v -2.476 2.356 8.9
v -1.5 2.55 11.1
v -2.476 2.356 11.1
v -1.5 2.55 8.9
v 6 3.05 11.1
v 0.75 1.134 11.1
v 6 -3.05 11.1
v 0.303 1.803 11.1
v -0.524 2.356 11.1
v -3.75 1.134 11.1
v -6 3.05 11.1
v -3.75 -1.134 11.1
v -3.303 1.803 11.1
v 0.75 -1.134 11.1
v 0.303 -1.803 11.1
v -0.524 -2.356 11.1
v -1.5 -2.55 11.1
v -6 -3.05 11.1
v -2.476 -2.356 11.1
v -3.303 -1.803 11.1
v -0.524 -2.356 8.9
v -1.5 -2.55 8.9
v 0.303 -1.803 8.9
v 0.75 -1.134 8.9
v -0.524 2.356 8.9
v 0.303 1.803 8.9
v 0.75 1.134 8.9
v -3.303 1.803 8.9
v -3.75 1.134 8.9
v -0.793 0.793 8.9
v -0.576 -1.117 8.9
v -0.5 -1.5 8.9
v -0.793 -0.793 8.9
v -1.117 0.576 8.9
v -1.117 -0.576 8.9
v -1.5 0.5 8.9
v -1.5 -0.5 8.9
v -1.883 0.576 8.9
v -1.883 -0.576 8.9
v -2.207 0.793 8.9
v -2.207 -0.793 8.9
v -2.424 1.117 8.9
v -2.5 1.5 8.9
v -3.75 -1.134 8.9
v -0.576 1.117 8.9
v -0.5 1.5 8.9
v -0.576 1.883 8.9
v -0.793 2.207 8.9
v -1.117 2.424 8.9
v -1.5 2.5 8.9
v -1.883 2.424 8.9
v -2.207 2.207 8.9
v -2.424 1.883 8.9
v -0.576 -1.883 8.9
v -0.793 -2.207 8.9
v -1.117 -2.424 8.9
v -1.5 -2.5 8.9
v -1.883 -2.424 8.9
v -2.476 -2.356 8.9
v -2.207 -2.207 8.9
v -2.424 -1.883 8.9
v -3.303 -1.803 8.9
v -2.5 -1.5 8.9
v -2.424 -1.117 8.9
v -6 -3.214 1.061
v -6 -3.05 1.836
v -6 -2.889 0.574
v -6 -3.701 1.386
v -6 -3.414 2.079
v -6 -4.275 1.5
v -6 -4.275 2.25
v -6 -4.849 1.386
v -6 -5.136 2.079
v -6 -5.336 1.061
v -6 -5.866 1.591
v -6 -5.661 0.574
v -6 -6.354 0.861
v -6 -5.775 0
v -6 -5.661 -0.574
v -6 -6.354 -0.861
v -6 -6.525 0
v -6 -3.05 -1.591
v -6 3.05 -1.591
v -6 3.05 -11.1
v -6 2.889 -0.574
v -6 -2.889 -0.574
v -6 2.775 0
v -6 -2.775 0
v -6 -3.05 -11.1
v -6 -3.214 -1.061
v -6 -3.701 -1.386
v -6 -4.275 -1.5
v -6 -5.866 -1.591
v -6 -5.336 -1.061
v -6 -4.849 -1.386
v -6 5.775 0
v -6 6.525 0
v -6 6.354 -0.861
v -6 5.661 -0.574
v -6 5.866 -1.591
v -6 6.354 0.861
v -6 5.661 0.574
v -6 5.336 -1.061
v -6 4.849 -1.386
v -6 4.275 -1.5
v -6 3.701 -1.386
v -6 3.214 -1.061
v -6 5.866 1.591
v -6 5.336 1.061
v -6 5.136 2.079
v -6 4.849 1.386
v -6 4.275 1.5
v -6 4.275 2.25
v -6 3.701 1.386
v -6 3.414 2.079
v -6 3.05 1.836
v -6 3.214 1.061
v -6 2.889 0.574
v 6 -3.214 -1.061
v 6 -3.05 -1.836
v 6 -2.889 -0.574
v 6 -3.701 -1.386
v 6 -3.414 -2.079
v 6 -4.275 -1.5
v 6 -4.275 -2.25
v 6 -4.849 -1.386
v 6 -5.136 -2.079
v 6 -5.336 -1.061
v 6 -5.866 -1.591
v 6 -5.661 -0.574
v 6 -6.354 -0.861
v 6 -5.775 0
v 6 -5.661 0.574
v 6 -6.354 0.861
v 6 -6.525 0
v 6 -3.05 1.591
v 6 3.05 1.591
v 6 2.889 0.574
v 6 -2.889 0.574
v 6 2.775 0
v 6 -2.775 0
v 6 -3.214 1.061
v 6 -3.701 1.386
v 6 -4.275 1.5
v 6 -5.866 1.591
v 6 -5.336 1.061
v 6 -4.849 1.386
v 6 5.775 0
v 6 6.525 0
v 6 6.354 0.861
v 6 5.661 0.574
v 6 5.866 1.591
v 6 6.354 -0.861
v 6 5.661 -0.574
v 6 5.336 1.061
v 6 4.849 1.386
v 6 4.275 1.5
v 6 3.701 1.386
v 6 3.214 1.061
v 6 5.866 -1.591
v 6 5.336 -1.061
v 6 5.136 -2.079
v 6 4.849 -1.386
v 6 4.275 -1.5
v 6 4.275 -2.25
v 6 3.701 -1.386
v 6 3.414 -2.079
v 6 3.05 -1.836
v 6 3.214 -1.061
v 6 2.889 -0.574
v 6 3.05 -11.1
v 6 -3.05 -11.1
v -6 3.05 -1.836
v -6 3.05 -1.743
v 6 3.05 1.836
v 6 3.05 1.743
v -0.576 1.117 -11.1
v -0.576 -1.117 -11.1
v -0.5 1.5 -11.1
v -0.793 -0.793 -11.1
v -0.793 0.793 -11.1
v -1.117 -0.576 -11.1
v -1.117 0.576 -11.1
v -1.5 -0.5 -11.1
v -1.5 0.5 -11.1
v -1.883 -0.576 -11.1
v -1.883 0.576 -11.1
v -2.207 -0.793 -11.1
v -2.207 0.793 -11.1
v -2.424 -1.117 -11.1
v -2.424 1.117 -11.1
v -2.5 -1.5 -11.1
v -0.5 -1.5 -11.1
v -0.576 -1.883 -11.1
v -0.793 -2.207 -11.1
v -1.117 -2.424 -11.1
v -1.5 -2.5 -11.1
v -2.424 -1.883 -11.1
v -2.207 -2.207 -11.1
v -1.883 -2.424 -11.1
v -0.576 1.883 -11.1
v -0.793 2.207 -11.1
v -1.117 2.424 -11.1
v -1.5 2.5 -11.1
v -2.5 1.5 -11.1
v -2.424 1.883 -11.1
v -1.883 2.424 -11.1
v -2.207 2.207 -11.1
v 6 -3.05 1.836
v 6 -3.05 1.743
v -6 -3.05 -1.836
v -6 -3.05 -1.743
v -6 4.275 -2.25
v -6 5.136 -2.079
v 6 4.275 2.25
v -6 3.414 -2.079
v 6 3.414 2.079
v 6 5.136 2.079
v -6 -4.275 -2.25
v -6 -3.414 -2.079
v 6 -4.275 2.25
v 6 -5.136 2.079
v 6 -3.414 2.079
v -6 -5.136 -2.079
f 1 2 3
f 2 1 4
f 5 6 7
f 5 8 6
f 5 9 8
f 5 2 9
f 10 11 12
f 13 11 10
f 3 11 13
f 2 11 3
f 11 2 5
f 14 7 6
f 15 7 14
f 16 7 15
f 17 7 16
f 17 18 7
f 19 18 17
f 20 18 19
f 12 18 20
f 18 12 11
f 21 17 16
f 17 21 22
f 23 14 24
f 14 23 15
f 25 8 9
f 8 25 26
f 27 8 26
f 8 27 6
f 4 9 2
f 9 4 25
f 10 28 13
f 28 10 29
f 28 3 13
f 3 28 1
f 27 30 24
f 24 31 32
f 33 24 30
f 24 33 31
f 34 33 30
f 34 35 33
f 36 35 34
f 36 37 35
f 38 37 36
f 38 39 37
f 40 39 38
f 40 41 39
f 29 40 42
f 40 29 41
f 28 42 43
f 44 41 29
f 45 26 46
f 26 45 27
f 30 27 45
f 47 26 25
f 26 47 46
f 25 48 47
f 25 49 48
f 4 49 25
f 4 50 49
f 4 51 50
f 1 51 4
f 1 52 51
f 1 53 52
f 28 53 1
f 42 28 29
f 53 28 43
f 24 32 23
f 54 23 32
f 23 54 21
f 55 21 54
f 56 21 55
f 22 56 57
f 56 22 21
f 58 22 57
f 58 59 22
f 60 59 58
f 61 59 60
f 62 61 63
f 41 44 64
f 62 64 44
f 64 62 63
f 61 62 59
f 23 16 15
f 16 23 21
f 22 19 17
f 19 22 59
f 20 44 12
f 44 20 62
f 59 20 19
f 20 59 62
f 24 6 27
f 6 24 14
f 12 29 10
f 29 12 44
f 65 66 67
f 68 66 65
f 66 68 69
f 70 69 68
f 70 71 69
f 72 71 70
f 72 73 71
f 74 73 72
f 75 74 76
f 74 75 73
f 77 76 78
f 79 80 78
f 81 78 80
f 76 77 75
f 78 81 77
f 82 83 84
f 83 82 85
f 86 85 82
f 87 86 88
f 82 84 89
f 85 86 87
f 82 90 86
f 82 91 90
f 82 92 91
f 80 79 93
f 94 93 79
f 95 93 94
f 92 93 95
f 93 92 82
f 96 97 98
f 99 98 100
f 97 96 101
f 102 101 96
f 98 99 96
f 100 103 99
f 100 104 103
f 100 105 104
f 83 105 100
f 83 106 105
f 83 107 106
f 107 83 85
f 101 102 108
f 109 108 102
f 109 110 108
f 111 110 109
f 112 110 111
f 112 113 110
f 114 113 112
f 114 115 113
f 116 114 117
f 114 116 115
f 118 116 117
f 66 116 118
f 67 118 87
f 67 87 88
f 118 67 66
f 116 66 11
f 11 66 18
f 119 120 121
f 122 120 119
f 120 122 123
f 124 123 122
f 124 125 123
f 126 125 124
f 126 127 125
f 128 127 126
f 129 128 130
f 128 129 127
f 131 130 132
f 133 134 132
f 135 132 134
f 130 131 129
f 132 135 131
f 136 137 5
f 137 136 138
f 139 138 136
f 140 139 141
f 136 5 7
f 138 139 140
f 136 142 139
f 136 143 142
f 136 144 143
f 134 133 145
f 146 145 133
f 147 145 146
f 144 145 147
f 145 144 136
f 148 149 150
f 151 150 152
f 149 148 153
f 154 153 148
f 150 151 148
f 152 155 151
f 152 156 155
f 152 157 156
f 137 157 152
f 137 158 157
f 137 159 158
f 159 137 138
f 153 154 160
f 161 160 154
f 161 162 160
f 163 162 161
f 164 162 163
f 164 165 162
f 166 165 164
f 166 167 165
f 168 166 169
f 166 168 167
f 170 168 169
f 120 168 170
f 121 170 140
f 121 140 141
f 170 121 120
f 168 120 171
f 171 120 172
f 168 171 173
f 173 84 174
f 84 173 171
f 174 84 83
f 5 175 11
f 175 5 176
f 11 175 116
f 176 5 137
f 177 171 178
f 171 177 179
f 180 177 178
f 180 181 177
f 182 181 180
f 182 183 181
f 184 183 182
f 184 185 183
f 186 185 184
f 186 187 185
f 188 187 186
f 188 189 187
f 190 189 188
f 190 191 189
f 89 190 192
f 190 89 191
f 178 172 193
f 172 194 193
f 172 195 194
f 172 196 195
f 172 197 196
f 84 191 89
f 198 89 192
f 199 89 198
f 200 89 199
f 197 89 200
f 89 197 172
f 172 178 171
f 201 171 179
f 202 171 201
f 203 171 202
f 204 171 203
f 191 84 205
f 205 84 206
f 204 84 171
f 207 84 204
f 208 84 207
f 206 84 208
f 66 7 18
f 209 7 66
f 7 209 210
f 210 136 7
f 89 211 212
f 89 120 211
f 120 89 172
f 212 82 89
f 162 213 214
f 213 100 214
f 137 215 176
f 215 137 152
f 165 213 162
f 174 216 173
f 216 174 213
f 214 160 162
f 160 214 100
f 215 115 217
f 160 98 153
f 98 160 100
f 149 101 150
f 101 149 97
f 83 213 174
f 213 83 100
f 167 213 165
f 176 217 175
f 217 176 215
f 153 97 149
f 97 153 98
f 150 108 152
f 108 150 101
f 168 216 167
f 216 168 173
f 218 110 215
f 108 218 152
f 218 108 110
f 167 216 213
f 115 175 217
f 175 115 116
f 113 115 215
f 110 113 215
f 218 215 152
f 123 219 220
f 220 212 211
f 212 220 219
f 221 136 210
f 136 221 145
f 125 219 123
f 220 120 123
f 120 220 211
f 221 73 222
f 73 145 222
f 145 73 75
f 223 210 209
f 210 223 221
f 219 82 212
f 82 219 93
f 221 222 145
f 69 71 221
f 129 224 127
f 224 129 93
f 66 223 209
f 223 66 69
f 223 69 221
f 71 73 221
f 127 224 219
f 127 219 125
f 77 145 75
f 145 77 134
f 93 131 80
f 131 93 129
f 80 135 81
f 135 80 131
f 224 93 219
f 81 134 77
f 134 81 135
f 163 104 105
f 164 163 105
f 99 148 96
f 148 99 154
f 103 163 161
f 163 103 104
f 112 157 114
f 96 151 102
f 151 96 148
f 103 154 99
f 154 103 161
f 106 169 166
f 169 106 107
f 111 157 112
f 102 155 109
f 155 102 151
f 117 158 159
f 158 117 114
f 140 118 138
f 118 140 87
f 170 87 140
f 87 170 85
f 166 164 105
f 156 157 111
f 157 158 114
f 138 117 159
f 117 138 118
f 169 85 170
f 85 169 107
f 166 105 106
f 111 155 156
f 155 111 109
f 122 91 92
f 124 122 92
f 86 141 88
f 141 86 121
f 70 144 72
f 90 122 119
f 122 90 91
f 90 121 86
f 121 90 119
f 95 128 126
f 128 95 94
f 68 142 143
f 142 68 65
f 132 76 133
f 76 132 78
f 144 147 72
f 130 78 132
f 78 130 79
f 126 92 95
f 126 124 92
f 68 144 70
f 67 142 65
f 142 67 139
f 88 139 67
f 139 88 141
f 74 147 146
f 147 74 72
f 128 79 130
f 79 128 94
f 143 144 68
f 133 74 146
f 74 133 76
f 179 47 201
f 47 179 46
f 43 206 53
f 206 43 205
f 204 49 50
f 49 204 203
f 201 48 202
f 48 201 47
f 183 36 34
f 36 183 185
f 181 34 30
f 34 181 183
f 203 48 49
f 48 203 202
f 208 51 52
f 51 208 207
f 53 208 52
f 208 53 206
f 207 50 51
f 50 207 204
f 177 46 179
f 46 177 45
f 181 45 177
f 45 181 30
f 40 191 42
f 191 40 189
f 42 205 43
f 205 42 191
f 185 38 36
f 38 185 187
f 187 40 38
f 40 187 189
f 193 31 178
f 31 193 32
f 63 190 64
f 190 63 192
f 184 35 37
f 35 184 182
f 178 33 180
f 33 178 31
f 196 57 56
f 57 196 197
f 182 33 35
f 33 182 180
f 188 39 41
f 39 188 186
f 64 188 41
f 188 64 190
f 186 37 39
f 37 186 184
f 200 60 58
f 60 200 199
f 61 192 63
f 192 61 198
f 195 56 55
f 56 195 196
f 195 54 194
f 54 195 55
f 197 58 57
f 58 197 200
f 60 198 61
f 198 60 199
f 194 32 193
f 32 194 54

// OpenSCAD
difference(){
  union(){
    difference(){
      //Basiscubus
        translate([0, 0, 0])cube([4.5*2 + 3, 5.1+1, 22.2], center = true);
      
      //Ausschnitt Photoresitor
      translate([-3/2, 0, (22.2-2.2)/2])difference(){
        cylinder($fn = 16, d=5.1, h=2.2, center=true);
        translate([+3/2 + 4.5/2, 0, 0])cube([3, 3, 3], center = true);
        translate([-3/2 - 4.5/2, 0, 0])cube([3, 3, 3], center = true);
      }
      
    }
    //Zylinder für Schrauben
    rotate([0, 90, 0])translate([0,  (5.1+1+2.45)/2, 0])cylinder($fn = 16, h=4.5*2 + 3, d=3+1.5, center = true);
    rotate([0, 90, 0])translate([0, -(5.1+1+2.45)/2, 0])cylinder($fn = 16, h=4.5*2 + 3, d=3+1.5, center = true);
  }
  //Mittelloch in Zylinder für Schrauben
    rotate([0, 90, 0])translate([0,  (5.1+1+2.45)/2, 0])cylinder($fn = 16, h=4.5*2 + 3, d=3, center = true);
    rotate([0, 90, 0])translate([0, -(5.1+1+2.45)/2, 0])cylinder($fn = 16, h=4.5*2 + 3, d=3, center = true);
  
    //Löcher Beine Lichtsensor. Höhe extra übertrieben, ging nicht anders.
    translate([-3/2,  (4-1)/2, -(22.2-20)/2])cylinder($fn = 16, d=2, h=22, center=true);
    translate([-3/2, -(4-1)/2, -(22.2-20)/2])cylinder($fn = 16, d=2, h=22, center=true);
}
